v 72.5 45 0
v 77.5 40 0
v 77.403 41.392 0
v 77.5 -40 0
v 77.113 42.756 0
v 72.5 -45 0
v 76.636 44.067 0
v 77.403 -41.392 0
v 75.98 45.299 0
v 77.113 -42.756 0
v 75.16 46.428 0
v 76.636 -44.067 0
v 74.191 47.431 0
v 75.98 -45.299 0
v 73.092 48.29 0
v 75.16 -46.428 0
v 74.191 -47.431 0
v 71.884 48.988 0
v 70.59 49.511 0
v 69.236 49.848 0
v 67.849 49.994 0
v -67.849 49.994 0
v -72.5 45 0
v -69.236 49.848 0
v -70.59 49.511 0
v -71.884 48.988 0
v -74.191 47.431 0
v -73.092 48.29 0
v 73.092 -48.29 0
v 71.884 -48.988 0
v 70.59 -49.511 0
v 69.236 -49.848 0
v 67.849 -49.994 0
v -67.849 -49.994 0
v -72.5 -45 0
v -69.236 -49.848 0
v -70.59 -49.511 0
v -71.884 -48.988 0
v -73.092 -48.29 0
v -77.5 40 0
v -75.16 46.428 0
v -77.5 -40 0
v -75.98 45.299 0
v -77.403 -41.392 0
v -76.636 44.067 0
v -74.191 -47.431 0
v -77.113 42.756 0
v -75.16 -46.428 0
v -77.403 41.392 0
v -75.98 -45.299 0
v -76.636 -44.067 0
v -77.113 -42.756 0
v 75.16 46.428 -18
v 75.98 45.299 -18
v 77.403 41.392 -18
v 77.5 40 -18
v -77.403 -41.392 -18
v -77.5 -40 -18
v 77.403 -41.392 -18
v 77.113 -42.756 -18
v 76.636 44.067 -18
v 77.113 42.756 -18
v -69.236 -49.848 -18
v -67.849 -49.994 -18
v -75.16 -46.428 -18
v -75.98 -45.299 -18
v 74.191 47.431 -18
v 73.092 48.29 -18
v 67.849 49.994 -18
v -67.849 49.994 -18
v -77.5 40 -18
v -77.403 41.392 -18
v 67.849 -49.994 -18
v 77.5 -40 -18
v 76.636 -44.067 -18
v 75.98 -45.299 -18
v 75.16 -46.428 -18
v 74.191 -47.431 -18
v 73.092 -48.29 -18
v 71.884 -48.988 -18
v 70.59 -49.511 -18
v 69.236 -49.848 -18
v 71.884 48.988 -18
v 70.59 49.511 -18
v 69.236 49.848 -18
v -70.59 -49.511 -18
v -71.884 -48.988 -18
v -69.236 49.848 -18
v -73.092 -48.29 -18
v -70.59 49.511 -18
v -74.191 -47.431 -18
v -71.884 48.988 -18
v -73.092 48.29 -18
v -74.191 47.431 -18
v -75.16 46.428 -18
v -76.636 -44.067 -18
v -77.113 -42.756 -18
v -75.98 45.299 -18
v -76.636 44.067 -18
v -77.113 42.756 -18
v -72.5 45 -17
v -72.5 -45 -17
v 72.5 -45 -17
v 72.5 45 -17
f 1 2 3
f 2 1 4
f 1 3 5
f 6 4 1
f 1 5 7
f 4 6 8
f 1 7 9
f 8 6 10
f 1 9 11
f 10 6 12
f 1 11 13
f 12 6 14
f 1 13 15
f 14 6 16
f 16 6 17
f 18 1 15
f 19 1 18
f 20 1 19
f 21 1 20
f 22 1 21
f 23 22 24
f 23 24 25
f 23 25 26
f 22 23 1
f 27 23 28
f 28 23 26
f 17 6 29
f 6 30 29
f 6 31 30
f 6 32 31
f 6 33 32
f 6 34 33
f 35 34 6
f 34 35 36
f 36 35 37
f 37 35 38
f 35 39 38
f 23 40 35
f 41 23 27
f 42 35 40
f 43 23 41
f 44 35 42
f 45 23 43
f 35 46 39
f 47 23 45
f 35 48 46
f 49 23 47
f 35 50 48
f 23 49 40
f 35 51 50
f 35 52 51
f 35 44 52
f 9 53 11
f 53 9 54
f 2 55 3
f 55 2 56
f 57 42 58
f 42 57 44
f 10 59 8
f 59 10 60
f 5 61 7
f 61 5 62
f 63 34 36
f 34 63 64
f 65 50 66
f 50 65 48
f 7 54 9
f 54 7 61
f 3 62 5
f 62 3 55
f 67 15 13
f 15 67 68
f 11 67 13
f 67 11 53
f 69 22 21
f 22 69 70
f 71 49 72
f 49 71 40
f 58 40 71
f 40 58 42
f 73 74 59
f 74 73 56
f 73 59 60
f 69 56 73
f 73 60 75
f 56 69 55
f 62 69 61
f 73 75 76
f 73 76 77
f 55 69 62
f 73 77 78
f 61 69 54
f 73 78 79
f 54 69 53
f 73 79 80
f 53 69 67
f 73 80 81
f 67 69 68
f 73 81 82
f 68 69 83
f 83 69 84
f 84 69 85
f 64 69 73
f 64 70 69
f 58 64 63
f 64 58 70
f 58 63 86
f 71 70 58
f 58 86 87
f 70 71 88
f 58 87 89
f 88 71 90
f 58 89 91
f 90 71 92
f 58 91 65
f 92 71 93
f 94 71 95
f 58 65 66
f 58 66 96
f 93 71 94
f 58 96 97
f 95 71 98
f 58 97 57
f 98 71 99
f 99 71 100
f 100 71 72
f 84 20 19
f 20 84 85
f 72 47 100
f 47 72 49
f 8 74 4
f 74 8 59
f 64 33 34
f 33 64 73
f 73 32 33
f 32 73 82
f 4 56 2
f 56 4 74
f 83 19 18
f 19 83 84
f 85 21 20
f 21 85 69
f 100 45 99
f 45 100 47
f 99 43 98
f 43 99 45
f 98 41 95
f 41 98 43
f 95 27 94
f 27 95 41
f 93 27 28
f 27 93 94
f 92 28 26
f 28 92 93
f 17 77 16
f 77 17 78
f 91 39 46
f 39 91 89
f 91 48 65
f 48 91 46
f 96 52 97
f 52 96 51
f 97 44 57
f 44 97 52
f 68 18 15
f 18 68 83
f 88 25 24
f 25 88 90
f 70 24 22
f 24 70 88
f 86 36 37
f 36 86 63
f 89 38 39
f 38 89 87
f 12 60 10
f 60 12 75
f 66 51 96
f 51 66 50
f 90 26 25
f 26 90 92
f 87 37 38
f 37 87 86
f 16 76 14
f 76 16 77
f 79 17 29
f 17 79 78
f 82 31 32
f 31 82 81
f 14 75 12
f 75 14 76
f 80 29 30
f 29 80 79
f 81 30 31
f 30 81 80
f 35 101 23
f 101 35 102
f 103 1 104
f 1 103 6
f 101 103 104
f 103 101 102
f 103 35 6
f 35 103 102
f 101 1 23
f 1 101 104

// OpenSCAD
$fn = 45;


HEIGHT = 38;
LEN = 100;
WIDTH = 155;
CASE_R = 10;
TOP_R = 2;

LCD_X = +28;
LCD_Y = -22;
LCD_Z = 12;

OLED_X = -43;
OLED_Y = -22;
OLED_Z = 17;

LCD_W = 25.25;
LCD_H = 10.5;
LCD_L = 71.25;

LCD_H_X = 75 / 2;
LCD_H_Y = 32 / 2;

OLED_L = 28;
OLED_W = 20;
OLED_H = 4;

OLED_H_X = 24 / 2;
OLED_H_Y = 24 / 2;

MAIN_W = 60;
MAIN_L = 41;
MAIN_H = 4;

MAIN_X = -40;
MAIN_Y = 20;
MAIN_Z = 17;

MAIN_H_X = 56 / 2;
MAIN_H_Y = 34 / 2;

module boundingCorner() {
  color("green")
  translate([WIDTH/2 -CASE_R , LEN/2 - CASE_R, 0]) {
    cylinder(r = CASE_R, h=HEIGHT - TOP_R, center=true);
    translate([TOP_R, TOP_R, HEIGHT/2]) {
      color("BLUE")
      sphere(TOP_R);
    }
  }  
}

module outsideCase() {
  hull() {
    mirror([0, 0, 0])
    boundingCorner();
 
    mirror([1, 0, 0])
    boundingCorner();
 
    mirror([0, 1, 0])
    boundingCorner();
 
    mirror([1, 0, 0])
    mirror([0, 1, 0])
    boundingCorner();
  }  
}

module lcd_screwholes() {
     module h() {
       translate([LCD_H_X, LCD_H_Y, 0])
       cylinder(r = 4/2, h=20, center=true);
     }

    mirror([0, 0, 0])
    h();
     
    mirror([1, 0, 0])
    h();
 
    mirror([0, 1, 0])
    h();
 
    mirror([1, 0, 0])
    mirror([0, 1, 0])
    h();    
}

module lcd_screwstuds() {
     module h() {
       translate([LCD_H_X, LCD_H_Y, 0])
       cylinder(r = 4, h=LCD_H-7.25, center=true);
     }

    mirror([0, 0, 0])
    h();
     
    mirror([1, 0, 0])
    h();
 
    mirror([0, 1, 0])
    h();
 
    mirror([1, 0, 0])
    mirror([0, 1, 0])
    h();    
}

module lcd() {
    module screwholerim() {
      translate([LCD_H_X, LCD_H_Y, 0]) {
        cylinder(r = 5/2, h=3, center=true);
      }
    }
    
    color("green")
    cube([80.25, 36, 2], center=true);
    
    // Height from bottom of circuit board
    color("black")
    translate([0, 0, LCD_H/2])
    cube([LCD_L, LCD_W, LCD_H], center=true);
    
    color("white")
    translate([LCD_L /2 -2, 0, LCD_H/2 /2])
    cylinder(r = 6, h=LCD_H/2+5, center=true);
    
    mirror([0, 0, 0])
    screwholerim();
    
    mirror([1, 0, 0])
    screwholerim();
 
    mirror([0, 1, 0])
    screwholerim();
 
    mirror([1, 0, 0])
    mirror([0, 1, 0])
    screwholerim();
}

module oled() {
    module h_rim() {
      translate([OLED_H_X, OLED_H_Y, ]) {
        cylinder(r = 1.5, h=3, center=true);
      }
    }
    
    color("lightblue")
    cube([28, 27, 2], center=true);
    
    color("navy")
    translate([0, 0, OLED_H/2]) {
      cube([OLED_L, OLED_W, OLED_H], center=true);
      // Cut away space for the connectors.
      cube([OLED_L-9, OLED_W+12, OLED_H-2], center=true);
    }

    mirror([0, 0, 0])
    h_rim();
    
    mirror([1, 0, 0])
    h_rim();
 
    mirror([0, 1, 0])
    h_rim();
 
    mirror([1, 0, 0])
    mirror([0, 1, 0])
    h_rim();
}

module oled_screwholes() {
     module h() {
      translate([OLED_H_X, OLED_H_Y, 0]) {
        cylinder(r = 1.5, h=10, center=true);
      }
     }

    mirror([0, 0, 0])
    h();
     
    mirror([1, 0, 0])
    h();
 
    mirror([0, 1, 0])
    h();
 
    mirror([1, 0, 0])
    mirror([0, 1, 0])
    h();    
}

module whole() {
    outsideCase();
}

module top_half() {
  rotate([0, 180, 0]) { 
  difference() {
    intersection() {
      translate([-500, -500, 0])
      cube([1000, 1000, 1000]);
      whole();
    }
    
    cube([WIDTH - CASE_R, LEN  -CASE_R, HEIGHT -4], center=true);
    guts();

    // Touchpad mounting sensors.
    translate([50, 7, 0])
    cylinder(r = 5.25/2, h=100, center=true);

    translate([50, 30, 0])
    cylinder(r = 5.25/2, h=100, center=true);

    translate([10, 7, 0])
    cylinder(r = 5.25/2, h=100, center=true);

    translate([10, 30, 0])
    cylinder(r = 5.25/2, h=100, center=true);

   // Opening for USB cable.    
    translate([-72+27, 47, 10])
    rotate([90, 0, 0]) {
    scale([1.25, .5, 1])
    cylinder(r = 13/2, h=10, center=true); 
    }
  }
  
  translate([LCD_X, LCD_Y, LCD_Z+4])
    difference() {
      lcd_screwstuds();
      lcd_screwholes();
    }
  }
  
  translate([-MAIN_X, MAIN_Y, -MAIN_Z+1])
    difference() {
      main_screwstuds();
      main_screwholes();
    }
}

module mainBoard() {
    cube([MAIN_W, MAIN_L, MAIN_H], center=true);
}


module main_screwstuds() {
     module h() {
       translate([MAIN_H_X, MAIN_H_Y, 0])
       cylinder(r = 4, h=LCD_H -4, center=true);
     }

    // No room for this one because of how the board is soldered
    // mirror([0, 0, 0])
    // h();
     
    mirror([1, 0, 0])
    h();
 
    mirror([0, 1, 0])
    h();
 
    mirror([1, 0, 0])
    mirror([0, 1, 0])
    h();    
}


module main_screwholes() {
     module h() {
       translate([MAIN_H_X, MAIN_H_Y, 0])
       cylinder(r = 2, h=40, center=true);
     }

    mirror([0, 0, 0])
    h();
     
    mirror([1, 0, 0])
    h();
 
    mirror([0, 1, 0])
    h();
 
    mirror([1, 0, 0])
    mirror([0, 1, 0])
    h();
}

module guts() {
    translate([LCD_X, LCD_Y, LCD_Z])
    {
      lcd();
      lcd_screwholes();  
    }

    translate([OLED_X, OLED_Y, OLED_Z]) {
      oled();
      oled_screwholes();
        
   }

  translate([MAIN_X, MAIN_Y, MAIN_Z]) {
    mainBoard();
    main_screwholes();
  }
}

module bottom_half() {
  difference() {
    intersection() {
      translate([-500, -500, -1000])
      cube([1000, 1000, 1000]);
      whole();
    }
    cube([WIDTH - CASE_R, LEN  -CASE_R, HEIGHT -4], center=true);
  }
}

// top_half();

rotate([180, 180, 180])
bottom_half();
